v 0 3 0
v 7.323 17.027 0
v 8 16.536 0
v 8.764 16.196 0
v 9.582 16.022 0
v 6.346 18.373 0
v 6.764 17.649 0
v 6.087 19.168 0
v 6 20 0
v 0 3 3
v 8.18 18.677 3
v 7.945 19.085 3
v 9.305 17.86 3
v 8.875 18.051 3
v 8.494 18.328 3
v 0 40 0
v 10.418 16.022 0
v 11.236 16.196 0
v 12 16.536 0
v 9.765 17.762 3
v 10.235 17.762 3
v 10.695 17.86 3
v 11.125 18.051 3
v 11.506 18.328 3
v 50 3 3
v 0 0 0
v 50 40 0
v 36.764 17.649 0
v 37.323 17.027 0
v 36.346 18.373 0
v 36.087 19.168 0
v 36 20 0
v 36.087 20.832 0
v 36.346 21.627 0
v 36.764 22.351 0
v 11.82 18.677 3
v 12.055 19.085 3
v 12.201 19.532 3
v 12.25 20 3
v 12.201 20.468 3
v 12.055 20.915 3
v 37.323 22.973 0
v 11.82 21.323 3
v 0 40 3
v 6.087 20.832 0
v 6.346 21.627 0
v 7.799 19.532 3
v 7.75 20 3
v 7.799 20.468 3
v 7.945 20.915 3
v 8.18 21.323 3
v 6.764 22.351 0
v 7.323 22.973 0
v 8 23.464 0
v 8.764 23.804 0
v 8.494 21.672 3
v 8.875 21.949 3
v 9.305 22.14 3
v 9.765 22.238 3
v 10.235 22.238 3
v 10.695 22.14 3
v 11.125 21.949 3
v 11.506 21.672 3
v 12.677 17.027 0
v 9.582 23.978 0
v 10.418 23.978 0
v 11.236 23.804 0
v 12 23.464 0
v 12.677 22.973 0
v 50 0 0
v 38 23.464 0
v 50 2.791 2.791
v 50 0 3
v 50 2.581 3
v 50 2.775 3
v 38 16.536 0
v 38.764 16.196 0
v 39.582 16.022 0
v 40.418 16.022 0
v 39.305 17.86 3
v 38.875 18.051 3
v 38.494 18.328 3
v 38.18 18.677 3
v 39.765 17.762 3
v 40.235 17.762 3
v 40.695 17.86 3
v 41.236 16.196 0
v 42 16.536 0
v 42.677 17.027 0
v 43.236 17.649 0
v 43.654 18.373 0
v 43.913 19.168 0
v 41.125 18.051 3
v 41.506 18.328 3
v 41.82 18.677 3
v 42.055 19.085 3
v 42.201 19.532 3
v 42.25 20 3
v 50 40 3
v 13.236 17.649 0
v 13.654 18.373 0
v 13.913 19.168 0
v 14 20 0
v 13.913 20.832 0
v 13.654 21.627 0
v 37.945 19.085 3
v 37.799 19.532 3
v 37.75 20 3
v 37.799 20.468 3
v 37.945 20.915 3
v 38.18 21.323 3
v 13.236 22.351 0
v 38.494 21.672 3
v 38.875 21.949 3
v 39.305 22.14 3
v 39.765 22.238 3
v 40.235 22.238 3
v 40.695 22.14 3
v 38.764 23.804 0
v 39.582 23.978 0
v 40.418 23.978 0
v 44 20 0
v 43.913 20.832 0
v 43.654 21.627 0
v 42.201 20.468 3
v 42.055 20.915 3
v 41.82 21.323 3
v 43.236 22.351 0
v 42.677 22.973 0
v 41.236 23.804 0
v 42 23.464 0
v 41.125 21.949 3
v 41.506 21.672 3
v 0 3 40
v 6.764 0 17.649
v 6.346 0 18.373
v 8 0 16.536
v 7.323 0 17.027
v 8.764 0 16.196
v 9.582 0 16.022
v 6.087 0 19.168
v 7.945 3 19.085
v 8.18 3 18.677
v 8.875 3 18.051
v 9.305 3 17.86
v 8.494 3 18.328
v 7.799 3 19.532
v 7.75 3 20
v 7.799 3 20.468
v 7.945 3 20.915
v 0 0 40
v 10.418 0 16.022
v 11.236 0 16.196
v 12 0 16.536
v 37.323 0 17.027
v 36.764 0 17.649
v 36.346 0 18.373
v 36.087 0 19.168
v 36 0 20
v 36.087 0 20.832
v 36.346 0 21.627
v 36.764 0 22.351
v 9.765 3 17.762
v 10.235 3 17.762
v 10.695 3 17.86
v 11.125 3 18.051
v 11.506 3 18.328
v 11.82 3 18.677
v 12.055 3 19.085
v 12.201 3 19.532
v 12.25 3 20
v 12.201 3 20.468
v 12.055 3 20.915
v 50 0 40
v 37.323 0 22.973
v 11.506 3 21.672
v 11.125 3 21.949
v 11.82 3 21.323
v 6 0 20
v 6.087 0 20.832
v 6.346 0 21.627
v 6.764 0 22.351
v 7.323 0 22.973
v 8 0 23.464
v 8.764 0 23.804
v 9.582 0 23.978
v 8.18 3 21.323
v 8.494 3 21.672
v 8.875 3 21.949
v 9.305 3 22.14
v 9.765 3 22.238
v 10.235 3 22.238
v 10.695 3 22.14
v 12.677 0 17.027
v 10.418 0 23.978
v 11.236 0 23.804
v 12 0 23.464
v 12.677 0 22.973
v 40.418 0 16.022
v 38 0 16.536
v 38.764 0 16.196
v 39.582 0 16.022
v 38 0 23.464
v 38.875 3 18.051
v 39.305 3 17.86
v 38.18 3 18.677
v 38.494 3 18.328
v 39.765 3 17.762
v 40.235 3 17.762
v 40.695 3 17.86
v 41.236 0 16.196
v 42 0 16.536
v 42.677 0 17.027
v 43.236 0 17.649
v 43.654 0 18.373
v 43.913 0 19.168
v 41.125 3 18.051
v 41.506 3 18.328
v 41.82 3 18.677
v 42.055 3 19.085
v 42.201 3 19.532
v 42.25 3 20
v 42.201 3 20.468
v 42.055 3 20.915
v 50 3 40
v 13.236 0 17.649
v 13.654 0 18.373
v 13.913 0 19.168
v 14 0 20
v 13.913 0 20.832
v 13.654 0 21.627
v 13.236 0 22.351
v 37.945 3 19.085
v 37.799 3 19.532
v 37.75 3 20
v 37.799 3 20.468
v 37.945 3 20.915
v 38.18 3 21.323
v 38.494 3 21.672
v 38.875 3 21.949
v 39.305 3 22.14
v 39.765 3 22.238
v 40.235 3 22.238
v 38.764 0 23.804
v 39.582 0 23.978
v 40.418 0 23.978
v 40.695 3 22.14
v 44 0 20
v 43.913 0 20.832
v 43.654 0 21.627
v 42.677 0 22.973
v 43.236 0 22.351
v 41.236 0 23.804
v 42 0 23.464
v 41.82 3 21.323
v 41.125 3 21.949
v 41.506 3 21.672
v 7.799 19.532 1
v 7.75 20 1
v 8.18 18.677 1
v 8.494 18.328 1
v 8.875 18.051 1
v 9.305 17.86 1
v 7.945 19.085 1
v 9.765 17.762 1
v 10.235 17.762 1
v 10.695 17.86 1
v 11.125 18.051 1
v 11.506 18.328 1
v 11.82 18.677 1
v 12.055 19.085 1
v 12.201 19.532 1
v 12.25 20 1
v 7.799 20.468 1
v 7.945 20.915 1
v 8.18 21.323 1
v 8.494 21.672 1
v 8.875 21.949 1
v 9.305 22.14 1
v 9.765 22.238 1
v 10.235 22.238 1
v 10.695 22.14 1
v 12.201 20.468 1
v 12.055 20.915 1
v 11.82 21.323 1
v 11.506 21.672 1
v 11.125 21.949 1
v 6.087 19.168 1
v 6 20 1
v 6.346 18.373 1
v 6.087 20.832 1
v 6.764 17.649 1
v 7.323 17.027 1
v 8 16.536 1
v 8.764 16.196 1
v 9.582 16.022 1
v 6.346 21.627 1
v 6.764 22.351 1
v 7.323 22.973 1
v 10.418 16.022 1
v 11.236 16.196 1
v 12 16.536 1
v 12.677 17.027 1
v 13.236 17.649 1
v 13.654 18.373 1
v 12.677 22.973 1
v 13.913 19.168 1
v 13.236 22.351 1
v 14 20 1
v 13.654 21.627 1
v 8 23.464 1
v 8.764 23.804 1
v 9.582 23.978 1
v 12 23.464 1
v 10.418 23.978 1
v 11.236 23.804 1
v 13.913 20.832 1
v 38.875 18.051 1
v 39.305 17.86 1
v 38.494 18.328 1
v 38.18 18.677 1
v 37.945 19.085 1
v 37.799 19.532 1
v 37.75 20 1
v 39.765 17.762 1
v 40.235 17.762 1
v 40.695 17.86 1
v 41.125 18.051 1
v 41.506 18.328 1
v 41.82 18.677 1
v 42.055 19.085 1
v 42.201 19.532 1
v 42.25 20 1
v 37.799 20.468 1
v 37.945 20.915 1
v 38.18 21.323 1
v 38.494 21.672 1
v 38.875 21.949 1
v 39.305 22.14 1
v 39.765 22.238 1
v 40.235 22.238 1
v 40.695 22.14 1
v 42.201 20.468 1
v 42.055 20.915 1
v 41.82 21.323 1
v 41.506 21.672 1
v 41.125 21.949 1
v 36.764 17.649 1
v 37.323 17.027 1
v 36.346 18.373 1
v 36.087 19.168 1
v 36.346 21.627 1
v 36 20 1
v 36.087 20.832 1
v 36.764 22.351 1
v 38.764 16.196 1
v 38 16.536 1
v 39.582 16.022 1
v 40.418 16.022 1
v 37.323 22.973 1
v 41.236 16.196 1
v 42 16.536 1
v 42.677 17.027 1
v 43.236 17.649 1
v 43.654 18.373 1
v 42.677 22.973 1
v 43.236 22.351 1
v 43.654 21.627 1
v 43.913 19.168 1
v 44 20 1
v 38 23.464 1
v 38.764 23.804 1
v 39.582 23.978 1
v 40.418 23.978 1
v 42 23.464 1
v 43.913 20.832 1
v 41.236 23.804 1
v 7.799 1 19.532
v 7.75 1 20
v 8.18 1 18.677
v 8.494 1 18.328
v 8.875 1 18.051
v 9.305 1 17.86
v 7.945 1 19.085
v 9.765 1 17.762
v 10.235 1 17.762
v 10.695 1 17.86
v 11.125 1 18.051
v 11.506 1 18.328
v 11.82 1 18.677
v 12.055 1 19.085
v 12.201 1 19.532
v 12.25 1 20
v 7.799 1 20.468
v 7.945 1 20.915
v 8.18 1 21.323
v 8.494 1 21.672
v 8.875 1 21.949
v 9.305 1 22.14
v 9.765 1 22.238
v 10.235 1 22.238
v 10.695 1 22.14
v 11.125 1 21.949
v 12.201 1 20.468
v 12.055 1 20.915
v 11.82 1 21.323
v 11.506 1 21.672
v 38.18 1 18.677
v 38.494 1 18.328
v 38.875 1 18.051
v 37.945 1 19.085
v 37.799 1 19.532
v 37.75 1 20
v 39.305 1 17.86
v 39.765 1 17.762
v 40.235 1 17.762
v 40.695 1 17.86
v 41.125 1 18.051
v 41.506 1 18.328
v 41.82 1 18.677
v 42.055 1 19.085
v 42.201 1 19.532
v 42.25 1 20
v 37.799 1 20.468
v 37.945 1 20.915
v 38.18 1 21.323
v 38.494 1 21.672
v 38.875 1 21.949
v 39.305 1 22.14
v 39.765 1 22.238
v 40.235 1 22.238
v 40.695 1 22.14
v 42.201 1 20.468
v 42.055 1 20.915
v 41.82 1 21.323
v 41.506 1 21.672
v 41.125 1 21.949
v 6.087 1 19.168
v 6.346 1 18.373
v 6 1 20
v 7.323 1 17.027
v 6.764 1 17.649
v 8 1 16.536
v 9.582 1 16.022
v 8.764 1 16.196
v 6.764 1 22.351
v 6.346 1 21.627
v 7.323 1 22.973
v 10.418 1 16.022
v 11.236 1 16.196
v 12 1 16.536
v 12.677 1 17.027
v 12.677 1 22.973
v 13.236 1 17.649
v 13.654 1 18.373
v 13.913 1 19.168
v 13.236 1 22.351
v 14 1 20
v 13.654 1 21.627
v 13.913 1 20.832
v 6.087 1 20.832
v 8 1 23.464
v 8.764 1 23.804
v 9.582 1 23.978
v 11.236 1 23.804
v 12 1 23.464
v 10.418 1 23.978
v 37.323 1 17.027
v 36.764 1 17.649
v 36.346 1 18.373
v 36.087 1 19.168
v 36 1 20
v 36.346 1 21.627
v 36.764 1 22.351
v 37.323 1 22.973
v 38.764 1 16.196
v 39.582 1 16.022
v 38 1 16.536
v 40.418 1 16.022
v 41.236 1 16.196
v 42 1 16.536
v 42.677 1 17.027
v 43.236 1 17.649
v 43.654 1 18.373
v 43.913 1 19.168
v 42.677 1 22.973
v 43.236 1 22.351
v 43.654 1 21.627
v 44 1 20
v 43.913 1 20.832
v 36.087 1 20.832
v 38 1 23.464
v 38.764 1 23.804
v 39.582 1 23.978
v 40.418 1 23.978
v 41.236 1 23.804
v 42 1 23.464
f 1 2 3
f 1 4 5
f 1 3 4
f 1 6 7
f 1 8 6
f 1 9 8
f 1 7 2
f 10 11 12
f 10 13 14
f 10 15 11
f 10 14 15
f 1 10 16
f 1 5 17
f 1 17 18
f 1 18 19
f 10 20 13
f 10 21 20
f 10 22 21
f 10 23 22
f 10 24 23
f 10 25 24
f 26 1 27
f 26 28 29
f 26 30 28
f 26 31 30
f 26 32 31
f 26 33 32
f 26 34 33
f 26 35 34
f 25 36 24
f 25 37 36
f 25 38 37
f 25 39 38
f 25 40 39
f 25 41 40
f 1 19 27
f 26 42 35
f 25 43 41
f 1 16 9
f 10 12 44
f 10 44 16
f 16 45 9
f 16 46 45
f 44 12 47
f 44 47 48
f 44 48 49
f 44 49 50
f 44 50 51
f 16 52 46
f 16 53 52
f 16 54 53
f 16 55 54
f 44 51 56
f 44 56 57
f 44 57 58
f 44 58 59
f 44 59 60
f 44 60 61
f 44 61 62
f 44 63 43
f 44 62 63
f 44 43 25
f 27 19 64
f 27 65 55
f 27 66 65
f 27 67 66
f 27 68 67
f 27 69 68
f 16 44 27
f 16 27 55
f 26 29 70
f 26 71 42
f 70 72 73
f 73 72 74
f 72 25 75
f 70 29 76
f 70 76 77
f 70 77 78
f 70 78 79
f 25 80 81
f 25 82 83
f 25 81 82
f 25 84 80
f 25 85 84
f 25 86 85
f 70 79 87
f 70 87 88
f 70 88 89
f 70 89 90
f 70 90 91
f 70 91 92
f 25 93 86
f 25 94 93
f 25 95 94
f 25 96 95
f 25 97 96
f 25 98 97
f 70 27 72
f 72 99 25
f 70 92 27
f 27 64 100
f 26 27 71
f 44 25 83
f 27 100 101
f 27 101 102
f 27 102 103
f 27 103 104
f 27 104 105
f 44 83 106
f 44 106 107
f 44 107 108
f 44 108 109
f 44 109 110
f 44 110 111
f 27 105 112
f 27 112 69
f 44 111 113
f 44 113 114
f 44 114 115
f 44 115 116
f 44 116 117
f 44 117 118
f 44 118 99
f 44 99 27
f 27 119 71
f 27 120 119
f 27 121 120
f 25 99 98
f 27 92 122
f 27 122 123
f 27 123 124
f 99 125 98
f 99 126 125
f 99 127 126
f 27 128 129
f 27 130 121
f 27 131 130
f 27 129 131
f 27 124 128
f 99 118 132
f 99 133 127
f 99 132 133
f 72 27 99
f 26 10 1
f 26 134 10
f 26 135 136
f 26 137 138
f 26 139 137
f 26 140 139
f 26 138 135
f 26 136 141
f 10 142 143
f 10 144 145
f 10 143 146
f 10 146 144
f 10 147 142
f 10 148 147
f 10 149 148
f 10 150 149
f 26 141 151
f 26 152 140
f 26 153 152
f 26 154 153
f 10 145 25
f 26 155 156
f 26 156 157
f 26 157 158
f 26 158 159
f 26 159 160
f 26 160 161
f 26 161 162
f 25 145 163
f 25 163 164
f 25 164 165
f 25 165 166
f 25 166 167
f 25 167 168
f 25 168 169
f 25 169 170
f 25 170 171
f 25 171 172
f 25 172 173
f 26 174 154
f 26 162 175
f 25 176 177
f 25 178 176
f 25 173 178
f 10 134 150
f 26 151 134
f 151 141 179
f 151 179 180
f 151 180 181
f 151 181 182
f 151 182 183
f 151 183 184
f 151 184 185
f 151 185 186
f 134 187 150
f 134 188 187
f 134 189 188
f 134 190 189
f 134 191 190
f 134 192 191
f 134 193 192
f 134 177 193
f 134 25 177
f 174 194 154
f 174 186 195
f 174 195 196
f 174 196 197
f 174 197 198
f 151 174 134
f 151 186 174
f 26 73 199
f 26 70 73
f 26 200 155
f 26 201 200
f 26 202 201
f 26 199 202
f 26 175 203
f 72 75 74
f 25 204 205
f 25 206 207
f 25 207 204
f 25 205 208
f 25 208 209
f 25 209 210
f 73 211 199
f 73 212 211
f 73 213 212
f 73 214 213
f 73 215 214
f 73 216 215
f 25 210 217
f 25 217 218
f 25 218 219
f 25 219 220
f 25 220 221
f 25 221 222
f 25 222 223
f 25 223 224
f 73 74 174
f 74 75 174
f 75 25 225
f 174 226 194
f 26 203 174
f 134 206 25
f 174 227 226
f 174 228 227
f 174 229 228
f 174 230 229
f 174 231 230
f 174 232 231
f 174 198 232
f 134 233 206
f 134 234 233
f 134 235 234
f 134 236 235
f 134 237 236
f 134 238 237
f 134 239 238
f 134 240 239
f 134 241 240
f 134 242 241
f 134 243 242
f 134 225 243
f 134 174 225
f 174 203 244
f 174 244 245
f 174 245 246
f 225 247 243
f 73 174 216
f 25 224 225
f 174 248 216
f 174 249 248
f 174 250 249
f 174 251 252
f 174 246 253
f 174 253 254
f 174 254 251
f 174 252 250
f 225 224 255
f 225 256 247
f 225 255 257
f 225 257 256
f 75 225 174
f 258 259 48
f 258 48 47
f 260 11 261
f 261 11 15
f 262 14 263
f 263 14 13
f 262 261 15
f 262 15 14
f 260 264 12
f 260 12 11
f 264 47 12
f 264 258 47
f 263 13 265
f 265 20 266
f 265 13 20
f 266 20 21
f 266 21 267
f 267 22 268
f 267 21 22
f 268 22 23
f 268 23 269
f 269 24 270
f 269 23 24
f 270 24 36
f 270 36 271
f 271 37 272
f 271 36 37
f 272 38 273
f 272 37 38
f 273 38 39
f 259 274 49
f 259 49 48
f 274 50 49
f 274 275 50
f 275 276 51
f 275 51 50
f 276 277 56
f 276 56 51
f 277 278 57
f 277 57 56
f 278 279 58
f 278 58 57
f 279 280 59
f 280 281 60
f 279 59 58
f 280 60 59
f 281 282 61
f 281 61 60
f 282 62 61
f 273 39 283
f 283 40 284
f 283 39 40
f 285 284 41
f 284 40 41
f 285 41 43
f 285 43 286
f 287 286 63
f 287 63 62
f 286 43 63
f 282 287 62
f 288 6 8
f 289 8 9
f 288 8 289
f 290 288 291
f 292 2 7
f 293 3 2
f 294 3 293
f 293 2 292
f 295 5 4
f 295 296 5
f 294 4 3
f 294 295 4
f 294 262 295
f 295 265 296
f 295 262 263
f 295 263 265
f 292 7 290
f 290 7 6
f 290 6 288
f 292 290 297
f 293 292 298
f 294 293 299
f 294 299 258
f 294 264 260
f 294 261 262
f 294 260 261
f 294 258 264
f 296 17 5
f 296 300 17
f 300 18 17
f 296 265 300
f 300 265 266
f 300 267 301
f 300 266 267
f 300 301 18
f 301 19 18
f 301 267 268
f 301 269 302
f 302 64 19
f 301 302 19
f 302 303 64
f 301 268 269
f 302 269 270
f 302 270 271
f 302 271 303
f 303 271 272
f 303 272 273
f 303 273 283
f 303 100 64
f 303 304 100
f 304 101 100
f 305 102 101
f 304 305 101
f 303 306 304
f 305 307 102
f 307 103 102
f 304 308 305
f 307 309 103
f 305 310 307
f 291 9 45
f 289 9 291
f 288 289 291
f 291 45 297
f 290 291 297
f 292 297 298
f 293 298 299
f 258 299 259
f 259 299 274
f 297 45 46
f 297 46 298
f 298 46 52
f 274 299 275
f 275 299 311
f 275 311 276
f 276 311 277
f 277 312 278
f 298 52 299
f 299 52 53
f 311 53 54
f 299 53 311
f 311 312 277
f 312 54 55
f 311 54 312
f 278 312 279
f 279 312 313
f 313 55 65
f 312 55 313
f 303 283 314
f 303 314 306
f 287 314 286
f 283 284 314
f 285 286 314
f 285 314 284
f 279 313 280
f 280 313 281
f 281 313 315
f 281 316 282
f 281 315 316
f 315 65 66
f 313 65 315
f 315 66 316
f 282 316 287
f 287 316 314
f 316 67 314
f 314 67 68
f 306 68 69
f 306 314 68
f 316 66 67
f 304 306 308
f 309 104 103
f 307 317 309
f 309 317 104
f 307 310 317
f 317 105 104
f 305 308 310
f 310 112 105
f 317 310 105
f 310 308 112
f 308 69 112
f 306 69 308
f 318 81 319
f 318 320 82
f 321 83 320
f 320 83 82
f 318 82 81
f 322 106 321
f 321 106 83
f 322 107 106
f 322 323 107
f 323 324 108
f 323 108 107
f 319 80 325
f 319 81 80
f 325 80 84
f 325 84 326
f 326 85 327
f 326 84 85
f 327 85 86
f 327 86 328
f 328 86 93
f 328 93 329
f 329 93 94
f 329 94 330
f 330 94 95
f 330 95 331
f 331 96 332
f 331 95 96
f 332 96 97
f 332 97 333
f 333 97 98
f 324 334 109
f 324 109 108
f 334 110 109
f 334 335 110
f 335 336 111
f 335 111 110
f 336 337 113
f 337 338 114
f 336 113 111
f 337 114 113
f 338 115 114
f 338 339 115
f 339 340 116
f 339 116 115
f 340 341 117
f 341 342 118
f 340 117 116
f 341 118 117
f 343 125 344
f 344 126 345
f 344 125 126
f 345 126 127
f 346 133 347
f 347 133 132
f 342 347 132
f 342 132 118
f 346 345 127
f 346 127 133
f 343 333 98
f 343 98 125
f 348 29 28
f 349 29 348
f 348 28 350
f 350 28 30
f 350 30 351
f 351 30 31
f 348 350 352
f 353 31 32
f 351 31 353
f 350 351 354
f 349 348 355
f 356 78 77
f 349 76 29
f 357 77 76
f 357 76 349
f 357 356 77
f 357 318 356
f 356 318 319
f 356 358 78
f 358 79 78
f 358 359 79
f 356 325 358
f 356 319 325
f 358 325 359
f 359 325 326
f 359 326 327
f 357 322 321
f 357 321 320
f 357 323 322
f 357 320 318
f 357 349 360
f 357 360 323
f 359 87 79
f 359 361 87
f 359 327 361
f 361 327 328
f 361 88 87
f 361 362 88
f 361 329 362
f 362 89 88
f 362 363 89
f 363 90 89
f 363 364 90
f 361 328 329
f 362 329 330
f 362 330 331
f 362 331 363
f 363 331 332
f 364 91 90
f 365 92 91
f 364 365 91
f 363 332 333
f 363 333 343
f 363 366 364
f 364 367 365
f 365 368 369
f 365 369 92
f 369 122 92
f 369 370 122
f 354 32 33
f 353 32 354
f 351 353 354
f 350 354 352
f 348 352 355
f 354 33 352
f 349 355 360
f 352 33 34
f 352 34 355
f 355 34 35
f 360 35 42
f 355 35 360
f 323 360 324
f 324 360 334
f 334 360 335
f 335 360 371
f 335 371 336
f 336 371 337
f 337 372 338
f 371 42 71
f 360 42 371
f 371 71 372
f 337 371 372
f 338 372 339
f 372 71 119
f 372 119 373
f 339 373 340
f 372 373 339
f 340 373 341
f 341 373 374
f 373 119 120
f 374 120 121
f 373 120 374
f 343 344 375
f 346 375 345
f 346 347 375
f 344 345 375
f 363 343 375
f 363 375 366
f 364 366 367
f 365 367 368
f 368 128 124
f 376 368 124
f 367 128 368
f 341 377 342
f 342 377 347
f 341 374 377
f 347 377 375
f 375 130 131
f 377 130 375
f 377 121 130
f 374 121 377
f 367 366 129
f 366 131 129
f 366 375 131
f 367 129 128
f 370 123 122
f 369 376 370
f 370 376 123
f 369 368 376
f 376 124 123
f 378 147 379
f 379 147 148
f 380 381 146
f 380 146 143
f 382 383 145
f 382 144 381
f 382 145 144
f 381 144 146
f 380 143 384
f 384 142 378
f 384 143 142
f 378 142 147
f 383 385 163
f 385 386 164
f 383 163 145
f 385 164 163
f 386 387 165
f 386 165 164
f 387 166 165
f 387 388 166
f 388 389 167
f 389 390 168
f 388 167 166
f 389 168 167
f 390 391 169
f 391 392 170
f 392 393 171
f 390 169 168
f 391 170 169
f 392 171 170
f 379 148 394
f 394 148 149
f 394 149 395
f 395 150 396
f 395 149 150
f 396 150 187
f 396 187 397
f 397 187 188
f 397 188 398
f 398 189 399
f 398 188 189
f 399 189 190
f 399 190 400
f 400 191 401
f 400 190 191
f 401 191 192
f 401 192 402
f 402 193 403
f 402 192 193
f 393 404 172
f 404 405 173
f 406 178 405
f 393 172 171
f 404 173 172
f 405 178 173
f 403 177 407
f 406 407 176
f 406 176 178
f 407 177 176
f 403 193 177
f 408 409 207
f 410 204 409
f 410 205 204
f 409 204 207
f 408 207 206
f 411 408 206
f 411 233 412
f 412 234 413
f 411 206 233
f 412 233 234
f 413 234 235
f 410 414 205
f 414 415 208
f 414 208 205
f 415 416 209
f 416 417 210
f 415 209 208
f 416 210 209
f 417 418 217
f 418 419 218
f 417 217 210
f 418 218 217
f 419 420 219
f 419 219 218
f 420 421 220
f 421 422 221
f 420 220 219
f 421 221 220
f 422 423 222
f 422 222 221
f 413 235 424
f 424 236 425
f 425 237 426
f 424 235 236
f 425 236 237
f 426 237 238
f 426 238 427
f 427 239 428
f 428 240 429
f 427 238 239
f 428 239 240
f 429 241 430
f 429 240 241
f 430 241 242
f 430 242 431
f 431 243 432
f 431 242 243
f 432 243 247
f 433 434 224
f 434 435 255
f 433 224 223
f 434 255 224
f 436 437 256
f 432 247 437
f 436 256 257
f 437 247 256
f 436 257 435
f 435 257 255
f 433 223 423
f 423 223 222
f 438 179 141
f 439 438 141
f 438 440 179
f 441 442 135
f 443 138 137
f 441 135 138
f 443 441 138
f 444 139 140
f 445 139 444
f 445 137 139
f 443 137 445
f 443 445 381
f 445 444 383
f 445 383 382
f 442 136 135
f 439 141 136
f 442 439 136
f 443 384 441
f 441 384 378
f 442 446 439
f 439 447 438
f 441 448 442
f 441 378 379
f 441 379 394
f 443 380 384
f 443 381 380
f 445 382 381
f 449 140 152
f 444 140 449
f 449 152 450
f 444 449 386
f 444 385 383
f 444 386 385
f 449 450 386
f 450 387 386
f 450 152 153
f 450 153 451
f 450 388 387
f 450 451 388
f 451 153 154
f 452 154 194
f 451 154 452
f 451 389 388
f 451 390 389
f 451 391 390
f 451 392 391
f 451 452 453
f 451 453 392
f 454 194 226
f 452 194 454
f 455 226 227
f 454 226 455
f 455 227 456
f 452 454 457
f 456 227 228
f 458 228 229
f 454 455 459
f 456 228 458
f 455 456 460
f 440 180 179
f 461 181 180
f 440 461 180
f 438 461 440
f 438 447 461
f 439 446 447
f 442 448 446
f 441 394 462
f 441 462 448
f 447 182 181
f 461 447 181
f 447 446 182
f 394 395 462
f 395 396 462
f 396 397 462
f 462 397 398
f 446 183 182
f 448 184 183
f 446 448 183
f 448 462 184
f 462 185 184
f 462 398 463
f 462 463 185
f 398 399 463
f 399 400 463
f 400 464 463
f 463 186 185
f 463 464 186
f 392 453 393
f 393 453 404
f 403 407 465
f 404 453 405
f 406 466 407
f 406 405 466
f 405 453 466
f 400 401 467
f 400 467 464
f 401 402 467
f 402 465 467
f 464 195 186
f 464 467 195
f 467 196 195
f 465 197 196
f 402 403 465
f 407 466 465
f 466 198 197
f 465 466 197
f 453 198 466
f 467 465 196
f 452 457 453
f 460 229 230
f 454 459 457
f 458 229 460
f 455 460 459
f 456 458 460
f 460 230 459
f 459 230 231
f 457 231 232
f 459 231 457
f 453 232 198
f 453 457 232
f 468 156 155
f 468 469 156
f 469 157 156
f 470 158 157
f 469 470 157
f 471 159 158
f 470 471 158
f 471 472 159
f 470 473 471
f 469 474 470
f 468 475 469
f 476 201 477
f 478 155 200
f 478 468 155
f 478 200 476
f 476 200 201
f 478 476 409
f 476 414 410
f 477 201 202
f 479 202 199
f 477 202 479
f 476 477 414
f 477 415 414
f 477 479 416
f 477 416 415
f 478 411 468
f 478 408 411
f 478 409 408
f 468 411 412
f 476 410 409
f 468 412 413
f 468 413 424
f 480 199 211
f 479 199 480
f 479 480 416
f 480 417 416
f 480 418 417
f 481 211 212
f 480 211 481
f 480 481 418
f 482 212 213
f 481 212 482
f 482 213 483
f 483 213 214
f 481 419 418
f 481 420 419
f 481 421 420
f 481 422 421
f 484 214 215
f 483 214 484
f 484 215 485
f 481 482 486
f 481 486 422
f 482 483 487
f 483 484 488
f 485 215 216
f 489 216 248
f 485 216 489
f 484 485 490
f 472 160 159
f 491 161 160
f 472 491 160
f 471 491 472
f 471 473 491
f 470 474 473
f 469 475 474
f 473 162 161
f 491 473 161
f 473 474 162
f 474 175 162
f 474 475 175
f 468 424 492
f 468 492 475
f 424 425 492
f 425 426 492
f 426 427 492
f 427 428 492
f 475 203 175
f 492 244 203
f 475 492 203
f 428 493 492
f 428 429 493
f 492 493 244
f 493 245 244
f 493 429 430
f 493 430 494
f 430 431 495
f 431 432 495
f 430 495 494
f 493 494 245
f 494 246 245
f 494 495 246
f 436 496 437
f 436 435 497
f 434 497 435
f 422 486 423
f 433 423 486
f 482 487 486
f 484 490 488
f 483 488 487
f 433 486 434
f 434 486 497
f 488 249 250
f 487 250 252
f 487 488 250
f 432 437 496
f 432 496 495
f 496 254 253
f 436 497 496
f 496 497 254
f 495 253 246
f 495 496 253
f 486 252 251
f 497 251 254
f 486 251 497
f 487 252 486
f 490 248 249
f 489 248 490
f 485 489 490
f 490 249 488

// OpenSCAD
// パラメータ設定
width = 50;       // フランジの幅
depth = 40;       // 水平面の奥行き
height = 40;      // 垂直面の高さ
thickness = 3;    // 板厚

// M4皿穴のパラメータ
hole_d = 4.5;     // 貫通穴の直径
cs_d = 8.0;       // 皿座面の直径
cs_depth = 2.0;   // 皿座面の深さ
edge_dist = 10;   // 縁からの距離
hole_y = width / 2; // 中心線 (幅方向の中央)

module l_bracket() {
    difference() {
        // L字のベース形状 (原点が内側コーナー)
        union() {
            // 水平面 (X: 0~50, Y: 0~40, Z: -3~0) -> 内側コーナーが原点になるよう配置
            // 仕様通り「水平面は +Y 方向、垂直面は +Z 方向」に伸びるように調整
            // 板厚分を考慮し、水平面はZ=-3〜0、垂直面はZ=0〜40とする
            cube([width, depth, thickness]);
            // 垂直面 (X: 0~50, Y: 0~3, Z: 0~40)
            cube([width, thickness, height]);
        }
        
        // --- 水平面の皿穴 (2個) ---
        // 外側(下面 Z = -3)から皿座面を彫り込む
        // X座標: 縁から10mm (10 と width - 10)
        // Y座標: 奥行きの中心 (depth / 2)
        for (x = [edge_dist, width - edge_dist]) {
            translate([x, depth / 2, -1]) { // わずかに突き抜けてきれいにくり抜く
                // 貫通穴
                cylinder(d = hole_d, h = thickness + 2, $fn = 30);
                // 皿座面 (下面側 Z=0 から上向きに彫る)
                translate([0, 0, -cs_depth + 1])
                    cylinder(d = cs_d, h = cs_depth + 1, $fn = 30);
            }
        }
        
        // --- 垂直面の皿穴 (2個) ---
        // 外側(背面 Y = 3)から皿座面を彫り込む
        // X座標: 縁から10mm (10 と width - 10)
        // Z座標: 高さの中心 (height / 2)
        for (x = [edge_dist, width - edge_dist]) {
            translate([x, -1, height / 2]) {
                rotate([-90, 0, 0]) {
                    // 貫通穴
                    cylinder(d = hole_d, h = thickness + 2, $fn = 30);
                    // 皿座面 (背面側 Y=0 から前向きに彫る)
                    translate([0, 0, -cs_depth + 1])
                        cylinder(d = cs_d, h = cs_depth + 1, $fn = 30);
                }
            }
        }
    }
}

// 描画実行
l_bracket();
